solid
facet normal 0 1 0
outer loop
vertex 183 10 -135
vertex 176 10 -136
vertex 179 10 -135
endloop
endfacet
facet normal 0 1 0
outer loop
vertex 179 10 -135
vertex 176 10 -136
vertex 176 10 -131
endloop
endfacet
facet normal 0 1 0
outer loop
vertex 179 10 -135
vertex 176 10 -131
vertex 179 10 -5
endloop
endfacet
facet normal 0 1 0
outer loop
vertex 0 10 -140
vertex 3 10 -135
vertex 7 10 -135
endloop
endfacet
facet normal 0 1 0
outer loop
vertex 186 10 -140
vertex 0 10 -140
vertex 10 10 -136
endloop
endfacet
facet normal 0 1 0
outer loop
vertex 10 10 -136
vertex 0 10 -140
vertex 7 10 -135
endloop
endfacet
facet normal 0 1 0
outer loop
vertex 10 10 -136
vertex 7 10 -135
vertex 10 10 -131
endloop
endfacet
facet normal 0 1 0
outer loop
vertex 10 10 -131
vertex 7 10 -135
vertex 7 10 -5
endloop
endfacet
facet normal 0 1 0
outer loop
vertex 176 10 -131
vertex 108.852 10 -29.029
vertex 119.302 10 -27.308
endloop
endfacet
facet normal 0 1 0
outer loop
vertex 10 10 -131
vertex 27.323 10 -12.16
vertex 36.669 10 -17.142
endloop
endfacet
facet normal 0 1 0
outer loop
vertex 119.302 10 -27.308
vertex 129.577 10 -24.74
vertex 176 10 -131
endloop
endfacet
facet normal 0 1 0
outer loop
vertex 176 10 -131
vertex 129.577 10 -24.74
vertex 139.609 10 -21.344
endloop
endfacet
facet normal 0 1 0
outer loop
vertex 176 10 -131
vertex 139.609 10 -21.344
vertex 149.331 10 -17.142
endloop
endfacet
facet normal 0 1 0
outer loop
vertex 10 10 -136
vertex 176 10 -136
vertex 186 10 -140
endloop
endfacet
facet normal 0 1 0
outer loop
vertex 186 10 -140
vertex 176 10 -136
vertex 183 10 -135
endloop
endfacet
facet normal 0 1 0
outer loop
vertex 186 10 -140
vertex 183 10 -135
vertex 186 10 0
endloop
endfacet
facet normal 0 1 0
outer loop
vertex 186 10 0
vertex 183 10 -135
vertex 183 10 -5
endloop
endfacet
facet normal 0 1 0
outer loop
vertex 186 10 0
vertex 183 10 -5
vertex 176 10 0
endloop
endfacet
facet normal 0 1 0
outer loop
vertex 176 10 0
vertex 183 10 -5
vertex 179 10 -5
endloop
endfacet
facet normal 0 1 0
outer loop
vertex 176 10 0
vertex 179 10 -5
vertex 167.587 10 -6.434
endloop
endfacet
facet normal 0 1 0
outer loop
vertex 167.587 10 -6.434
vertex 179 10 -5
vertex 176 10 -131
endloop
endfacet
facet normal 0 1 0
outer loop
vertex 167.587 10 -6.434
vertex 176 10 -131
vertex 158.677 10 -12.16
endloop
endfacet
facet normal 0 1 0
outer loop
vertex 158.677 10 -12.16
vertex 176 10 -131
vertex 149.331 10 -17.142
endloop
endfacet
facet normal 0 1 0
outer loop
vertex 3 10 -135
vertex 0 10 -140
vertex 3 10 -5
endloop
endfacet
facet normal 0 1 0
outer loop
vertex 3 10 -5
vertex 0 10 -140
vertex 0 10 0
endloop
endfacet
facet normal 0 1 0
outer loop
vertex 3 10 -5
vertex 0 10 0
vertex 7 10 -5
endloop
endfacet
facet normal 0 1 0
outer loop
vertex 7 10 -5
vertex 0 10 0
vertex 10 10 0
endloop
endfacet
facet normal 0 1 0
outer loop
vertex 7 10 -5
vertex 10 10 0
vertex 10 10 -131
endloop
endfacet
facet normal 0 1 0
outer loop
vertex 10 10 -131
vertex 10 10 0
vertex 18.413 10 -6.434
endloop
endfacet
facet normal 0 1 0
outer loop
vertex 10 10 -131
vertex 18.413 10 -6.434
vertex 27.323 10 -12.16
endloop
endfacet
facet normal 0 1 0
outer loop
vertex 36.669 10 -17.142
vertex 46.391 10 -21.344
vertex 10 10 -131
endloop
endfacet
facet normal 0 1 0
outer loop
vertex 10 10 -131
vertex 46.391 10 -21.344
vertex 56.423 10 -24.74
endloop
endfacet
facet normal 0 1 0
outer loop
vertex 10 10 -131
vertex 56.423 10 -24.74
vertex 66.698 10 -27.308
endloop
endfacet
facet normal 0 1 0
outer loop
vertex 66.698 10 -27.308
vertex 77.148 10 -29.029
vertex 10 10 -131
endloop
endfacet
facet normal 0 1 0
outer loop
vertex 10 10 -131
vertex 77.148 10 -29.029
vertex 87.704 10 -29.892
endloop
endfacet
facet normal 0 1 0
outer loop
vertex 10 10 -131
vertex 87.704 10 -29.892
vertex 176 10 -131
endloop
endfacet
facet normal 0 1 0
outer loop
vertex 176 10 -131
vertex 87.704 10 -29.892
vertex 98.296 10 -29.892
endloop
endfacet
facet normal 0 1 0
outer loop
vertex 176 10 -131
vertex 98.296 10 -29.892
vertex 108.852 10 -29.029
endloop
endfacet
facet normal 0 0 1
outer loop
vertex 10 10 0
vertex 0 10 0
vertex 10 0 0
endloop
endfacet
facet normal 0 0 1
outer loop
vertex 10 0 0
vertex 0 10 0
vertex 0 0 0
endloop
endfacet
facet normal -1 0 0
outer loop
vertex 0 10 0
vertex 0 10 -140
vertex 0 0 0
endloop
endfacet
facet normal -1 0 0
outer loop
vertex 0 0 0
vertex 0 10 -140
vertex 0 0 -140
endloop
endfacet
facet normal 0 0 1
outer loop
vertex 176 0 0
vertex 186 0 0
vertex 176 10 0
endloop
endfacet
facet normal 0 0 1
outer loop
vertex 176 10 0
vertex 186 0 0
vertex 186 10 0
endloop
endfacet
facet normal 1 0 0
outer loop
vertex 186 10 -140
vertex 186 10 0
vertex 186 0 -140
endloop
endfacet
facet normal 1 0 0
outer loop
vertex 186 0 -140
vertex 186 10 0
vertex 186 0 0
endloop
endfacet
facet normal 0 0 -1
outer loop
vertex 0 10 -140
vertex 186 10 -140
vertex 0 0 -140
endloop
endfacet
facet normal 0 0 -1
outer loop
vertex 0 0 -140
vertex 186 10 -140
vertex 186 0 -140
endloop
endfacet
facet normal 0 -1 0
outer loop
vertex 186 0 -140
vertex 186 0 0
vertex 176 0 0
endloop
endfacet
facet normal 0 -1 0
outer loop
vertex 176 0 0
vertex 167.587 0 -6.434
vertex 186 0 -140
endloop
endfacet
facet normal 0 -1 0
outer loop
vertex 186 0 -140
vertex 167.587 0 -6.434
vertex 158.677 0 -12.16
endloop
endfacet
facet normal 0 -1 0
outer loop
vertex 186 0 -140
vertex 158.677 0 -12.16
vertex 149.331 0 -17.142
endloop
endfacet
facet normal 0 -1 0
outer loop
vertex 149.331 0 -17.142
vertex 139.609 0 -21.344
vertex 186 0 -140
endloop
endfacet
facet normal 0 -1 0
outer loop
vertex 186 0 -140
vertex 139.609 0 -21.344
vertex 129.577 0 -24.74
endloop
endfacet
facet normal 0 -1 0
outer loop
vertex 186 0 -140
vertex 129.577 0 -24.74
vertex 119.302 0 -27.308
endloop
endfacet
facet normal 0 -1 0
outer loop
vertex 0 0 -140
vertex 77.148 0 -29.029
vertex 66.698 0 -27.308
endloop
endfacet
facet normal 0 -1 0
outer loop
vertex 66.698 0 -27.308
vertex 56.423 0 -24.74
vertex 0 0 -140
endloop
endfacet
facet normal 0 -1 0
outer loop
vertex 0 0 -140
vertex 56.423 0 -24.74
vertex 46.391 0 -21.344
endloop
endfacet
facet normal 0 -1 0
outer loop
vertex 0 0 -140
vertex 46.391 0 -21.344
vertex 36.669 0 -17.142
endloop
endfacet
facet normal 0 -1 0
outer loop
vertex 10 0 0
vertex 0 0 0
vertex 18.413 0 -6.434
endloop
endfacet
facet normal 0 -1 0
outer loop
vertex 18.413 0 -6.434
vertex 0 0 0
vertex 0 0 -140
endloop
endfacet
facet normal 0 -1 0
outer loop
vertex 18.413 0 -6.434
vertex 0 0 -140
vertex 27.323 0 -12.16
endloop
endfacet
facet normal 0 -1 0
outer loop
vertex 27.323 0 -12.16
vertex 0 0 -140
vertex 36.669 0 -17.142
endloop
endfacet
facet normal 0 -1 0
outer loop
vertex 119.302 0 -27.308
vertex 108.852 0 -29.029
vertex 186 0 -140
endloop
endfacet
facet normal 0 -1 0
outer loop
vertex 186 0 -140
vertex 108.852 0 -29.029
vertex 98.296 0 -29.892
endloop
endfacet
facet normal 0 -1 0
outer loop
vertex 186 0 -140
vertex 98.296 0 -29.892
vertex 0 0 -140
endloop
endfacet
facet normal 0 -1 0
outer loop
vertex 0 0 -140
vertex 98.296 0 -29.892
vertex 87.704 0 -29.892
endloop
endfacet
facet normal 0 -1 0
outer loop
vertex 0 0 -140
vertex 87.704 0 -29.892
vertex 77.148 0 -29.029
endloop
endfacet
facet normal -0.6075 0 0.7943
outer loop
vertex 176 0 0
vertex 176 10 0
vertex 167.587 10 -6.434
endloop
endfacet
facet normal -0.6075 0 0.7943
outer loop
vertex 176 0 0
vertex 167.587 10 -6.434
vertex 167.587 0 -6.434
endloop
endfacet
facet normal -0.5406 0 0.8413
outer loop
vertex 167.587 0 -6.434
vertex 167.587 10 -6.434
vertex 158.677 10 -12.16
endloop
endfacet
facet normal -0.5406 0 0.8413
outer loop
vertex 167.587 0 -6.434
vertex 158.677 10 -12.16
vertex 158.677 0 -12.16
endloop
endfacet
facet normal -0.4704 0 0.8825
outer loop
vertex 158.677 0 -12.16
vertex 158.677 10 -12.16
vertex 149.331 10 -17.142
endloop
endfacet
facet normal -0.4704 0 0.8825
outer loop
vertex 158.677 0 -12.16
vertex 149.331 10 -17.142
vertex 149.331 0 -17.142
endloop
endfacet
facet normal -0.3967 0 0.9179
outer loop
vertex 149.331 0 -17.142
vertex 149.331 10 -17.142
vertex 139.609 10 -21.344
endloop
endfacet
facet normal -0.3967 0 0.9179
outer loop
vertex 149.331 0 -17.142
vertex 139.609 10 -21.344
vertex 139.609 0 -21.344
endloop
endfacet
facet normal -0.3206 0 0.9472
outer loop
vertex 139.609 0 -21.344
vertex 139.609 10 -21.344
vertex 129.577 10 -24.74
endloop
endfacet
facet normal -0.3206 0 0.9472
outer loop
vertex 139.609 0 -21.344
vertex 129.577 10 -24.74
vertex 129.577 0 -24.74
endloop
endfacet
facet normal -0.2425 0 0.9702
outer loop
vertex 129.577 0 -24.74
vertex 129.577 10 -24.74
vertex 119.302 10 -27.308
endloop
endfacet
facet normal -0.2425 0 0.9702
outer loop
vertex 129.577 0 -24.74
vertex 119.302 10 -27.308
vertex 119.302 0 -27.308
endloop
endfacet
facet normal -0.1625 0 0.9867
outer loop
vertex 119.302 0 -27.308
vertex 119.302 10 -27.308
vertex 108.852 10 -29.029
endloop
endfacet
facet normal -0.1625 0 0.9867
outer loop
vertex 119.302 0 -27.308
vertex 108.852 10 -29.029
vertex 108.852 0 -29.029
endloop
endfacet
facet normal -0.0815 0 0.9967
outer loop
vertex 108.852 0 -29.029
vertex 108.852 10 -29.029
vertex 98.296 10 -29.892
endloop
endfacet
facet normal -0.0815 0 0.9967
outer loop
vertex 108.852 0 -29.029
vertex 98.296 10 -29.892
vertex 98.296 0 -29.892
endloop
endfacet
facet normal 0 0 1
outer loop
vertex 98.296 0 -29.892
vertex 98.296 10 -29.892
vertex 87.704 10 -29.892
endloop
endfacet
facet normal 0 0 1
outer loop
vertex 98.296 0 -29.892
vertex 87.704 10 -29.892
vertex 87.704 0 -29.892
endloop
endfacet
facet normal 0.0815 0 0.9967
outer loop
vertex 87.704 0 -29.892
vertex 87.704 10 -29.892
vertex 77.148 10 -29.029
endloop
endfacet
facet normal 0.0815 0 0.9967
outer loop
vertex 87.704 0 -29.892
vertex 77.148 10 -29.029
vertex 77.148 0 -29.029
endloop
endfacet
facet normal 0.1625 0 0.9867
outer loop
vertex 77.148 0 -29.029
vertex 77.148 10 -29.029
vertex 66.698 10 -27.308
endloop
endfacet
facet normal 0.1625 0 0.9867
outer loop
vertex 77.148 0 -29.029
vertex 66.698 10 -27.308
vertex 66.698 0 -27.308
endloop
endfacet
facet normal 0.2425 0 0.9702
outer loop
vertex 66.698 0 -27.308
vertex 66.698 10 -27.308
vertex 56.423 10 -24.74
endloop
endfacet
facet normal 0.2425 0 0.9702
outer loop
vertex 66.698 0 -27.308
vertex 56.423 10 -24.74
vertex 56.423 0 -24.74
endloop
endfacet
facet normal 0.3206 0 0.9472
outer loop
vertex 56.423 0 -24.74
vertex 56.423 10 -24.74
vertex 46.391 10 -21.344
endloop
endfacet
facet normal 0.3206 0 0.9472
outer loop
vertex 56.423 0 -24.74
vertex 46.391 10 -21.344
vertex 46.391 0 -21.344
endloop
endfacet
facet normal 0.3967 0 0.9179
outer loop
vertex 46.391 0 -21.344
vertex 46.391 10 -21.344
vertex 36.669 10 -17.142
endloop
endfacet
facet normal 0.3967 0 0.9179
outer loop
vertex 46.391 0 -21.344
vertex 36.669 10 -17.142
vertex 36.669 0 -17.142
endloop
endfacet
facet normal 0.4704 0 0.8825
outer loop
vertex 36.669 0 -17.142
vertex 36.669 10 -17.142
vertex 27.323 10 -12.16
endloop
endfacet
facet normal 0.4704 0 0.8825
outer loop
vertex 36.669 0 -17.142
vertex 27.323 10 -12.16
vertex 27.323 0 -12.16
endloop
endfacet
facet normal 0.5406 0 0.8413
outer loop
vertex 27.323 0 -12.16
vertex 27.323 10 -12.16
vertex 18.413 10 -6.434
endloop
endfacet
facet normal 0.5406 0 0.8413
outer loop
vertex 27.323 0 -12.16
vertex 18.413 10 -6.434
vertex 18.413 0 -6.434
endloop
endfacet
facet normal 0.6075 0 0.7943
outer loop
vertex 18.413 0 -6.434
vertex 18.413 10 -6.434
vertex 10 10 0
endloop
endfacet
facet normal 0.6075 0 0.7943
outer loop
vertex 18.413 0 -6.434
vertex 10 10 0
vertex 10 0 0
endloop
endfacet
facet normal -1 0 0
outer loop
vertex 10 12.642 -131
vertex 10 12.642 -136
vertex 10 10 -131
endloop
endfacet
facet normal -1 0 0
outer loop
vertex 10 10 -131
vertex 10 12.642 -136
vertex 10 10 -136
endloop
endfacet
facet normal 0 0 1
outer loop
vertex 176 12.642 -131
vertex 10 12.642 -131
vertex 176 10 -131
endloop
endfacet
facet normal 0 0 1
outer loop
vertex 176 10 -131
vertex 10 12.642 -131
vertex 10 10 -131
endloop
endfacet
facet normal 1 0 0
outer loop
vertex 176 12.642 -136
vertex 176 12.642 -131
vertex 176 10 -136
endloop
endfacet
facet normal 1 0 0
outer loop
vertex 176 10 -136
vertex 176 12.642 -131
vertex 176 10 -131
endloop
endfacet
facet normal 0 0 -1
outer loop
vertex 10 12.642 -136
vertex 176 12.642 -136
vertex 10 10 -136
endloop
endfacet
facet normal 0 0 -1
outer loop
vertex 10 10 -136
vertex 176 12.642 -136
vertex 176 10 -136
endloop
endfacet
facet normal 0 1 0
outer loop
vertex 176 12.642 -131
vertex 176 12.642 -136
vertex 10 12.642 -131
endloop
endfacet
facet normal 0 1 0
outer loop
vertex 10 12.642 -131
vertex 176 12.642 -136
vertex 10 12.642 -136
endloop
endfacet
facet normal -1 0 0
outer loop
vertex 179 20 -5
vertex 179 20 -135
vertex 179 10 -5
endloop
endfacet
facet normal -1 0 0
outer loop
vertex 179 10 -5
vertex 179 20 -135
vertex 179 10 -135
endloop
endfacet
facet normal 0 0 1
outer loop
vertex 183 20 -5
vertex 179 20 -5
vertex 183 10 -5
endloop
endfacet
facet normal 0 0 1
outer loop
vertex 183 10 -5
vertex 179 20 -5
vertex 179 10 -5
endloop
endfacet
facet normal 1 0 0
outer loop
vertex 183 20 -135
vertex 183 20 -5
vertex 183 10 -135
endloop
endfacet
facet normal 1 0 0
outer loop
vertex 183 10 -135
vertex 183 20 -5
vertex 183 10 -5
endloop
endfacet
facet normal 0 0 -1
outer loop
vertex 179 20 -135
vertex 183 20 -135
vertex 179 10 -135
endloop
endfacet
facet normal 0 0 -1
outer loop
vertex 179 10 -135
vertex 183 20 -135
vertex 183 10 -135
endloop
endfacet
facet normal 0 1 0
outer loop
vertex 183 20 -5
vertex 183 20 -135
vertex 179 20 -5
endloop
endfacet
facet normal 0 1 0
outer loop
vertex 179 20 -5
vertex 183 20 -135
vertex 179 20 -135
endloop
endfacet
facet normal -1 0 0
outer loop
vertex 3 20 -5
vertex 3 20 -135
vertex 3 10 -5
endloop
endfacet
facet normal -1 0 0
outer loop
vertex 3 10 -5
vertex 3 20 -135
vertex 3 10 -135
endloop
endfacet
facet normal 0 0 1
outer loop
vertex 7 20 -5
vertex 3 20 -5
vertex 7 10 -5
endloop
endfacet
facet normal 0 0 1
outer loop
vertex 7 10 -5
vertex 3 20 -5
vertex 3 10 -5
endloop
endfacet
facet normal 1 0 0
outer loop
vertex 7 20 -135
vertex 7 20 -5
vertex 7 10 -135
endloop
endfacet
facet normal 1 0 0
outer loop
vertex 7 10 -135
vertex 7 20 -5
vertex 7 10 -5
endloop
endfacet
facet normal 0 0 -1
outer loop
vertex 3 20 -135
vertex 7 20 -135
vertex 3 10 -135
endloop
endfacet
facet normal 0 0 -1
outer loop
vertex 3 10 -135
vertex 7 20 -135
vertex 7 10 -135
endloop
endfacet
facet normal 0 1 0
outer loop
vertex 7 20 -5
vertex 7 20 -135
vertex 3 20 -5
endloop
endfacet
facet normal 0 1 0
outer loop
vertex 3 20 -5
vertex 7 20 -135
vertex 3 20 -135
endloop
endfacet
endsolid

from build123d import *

# Parameters (mm, degrees)
SKETCH1_W           = 186
SKETCH1_H           = 140
BOSS_EXTRUDE1_DEPTH = 10
CUT_EXTRUDE5_DEPTH  = 234.015020975
SKETCH4_W           = 166
SKETCH4_H           = 5
BOSS_EXTRUDE3_DEPTH = 2.6416
SKETCH6_W           = 4
SKETCH6_H           = 130
BOSS_EXTRUDE4_DEPTH = 10
SKETCH7_W           = 4
SKETCH7_H           = 130
BOSS_EXTRUDE5_DEPTH = 10


with BuildPart() as part:
    # Sketch1 → Boss-Extrude1 (new body)
    with BuildSketch(Plane(origin=(0, 0, 0), x_dir=(1, 0, 0), z_dir=(0, 1, 0))):
        with Locations((93, 70)):
            Rectangle(SKETCH1_W, SKETCH1_H)
    extrude(amount=BOSS_EXTRUDE1_DEPTH)

    # Sketch5 → Cut-Extrude5 (cut, through all)
    with BuildSketch(Plane(origin=(0, 10, 0), x_dir=(1, 0, 0), z_dir=(0, 1, 0))):
        with BuildLine():
            Line((176, 0), (10, 0))
            ThreePointArc((10, 0), (93, 30), (176, 0))
        make_face()
    extrude(amount=-CUT_EXTRUDE5_DEPTH, mode=Mode.SUBTRACT)

    # Sketch4 → Boss-Extrude3 (add)
    with BuildSketch(Plane(origin=(0, 10, 0), x_dir=(1, 0, 0), z_dir=(0, 1, 0))):
        with Locations((93, 133.5)):
            Rectangle(SKETCH4_W, SKETCH4_H)
    extrude(amount=BOSS_EXTRUDE3_DEPTH)

    # Sketch6 → Boss-Extrude4 (add)
    with BuildSketch(Plane(origin=(0, 10, 0), x_dir=(1, 0, 0), z_dir=(0, 1, 0))):
        with Locations((181, 70)):
            Rectangle(SKETCH6_W, SKETCH6_H)
    extrude(amount=BOSS_EXTRUDE4_DEPTH)

    # Sketch7 → Boss-Extrude5 (add)
    with BuildSketch(Plane(origin=(0, 10, 0), x_dir=(1, 0, 0), z_dir=(0, 1, 0))):
        with Locations((5, 70)):
            Rectangle(SKETCH7_W, SKETCH7_H)
    extrude(amount=BOSS_EXTRUDE5_DEPTH)


solid = part.part
